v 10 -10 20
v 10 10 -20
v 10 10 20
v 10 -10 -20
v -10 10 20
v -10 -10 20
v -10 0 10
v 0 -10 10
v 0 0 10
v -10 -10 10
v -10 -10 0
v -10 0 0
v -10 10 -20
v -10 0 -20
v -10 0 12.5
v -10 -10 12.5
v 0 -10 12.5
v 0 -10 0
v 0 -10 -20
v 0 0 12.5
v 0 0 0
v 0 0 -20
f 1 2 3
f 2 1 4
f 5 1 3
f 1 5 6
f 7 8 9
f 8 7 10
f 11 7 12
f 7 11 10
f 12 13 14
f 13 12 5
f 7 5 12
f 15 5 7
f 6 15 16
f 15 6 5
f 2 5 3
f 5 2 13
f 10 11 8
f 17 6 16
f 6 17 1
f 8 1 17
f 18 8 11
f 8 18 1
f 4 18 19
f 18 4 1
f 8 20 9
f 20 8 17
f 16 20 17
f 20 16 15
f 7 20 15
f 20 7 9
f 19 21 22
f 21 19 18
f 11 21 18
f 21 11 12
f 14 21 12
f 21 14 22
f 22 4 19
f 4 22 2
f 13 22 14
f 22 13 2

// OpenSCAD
// Define the central block
module central_block() {
    difference() {
        cube([20, 20, 20], center = true);
        union() {
            // Deepen and refine the cross-shaped void
            translate([-10, -5, -15]) cube([20, 10, 30], center = true);
            translate([-5, -10, -15]) cube([10, 20, 30], center = true);
        }
    }
}

// Define the upper block
module upper_block() {
    difference() {
        cube([20, 20, 10], center = true);
        // Enlarge and sharpen the stepped cutout
        translate([-10, -5, -10]) cube([20, 10, 15], center = true);
    }
}

// Define the lower block
module lower_block() {
    difference() {
        cube([20, 20, 10], center = true);
        // Enlarge and sharpen the stepped cutout
        translate([-10, -5, 0]) cube([20, 10, 15], center = true);
    }
}

// Assemble the components
module assembly() {
    translate([0, 0, 15]) upper_block(); // Position the upper block
    central_block(); // Position the central block
    translate([0, 0, -15]) lower_block(); // Position the lower block
}

// Render the assembly
assembly();
